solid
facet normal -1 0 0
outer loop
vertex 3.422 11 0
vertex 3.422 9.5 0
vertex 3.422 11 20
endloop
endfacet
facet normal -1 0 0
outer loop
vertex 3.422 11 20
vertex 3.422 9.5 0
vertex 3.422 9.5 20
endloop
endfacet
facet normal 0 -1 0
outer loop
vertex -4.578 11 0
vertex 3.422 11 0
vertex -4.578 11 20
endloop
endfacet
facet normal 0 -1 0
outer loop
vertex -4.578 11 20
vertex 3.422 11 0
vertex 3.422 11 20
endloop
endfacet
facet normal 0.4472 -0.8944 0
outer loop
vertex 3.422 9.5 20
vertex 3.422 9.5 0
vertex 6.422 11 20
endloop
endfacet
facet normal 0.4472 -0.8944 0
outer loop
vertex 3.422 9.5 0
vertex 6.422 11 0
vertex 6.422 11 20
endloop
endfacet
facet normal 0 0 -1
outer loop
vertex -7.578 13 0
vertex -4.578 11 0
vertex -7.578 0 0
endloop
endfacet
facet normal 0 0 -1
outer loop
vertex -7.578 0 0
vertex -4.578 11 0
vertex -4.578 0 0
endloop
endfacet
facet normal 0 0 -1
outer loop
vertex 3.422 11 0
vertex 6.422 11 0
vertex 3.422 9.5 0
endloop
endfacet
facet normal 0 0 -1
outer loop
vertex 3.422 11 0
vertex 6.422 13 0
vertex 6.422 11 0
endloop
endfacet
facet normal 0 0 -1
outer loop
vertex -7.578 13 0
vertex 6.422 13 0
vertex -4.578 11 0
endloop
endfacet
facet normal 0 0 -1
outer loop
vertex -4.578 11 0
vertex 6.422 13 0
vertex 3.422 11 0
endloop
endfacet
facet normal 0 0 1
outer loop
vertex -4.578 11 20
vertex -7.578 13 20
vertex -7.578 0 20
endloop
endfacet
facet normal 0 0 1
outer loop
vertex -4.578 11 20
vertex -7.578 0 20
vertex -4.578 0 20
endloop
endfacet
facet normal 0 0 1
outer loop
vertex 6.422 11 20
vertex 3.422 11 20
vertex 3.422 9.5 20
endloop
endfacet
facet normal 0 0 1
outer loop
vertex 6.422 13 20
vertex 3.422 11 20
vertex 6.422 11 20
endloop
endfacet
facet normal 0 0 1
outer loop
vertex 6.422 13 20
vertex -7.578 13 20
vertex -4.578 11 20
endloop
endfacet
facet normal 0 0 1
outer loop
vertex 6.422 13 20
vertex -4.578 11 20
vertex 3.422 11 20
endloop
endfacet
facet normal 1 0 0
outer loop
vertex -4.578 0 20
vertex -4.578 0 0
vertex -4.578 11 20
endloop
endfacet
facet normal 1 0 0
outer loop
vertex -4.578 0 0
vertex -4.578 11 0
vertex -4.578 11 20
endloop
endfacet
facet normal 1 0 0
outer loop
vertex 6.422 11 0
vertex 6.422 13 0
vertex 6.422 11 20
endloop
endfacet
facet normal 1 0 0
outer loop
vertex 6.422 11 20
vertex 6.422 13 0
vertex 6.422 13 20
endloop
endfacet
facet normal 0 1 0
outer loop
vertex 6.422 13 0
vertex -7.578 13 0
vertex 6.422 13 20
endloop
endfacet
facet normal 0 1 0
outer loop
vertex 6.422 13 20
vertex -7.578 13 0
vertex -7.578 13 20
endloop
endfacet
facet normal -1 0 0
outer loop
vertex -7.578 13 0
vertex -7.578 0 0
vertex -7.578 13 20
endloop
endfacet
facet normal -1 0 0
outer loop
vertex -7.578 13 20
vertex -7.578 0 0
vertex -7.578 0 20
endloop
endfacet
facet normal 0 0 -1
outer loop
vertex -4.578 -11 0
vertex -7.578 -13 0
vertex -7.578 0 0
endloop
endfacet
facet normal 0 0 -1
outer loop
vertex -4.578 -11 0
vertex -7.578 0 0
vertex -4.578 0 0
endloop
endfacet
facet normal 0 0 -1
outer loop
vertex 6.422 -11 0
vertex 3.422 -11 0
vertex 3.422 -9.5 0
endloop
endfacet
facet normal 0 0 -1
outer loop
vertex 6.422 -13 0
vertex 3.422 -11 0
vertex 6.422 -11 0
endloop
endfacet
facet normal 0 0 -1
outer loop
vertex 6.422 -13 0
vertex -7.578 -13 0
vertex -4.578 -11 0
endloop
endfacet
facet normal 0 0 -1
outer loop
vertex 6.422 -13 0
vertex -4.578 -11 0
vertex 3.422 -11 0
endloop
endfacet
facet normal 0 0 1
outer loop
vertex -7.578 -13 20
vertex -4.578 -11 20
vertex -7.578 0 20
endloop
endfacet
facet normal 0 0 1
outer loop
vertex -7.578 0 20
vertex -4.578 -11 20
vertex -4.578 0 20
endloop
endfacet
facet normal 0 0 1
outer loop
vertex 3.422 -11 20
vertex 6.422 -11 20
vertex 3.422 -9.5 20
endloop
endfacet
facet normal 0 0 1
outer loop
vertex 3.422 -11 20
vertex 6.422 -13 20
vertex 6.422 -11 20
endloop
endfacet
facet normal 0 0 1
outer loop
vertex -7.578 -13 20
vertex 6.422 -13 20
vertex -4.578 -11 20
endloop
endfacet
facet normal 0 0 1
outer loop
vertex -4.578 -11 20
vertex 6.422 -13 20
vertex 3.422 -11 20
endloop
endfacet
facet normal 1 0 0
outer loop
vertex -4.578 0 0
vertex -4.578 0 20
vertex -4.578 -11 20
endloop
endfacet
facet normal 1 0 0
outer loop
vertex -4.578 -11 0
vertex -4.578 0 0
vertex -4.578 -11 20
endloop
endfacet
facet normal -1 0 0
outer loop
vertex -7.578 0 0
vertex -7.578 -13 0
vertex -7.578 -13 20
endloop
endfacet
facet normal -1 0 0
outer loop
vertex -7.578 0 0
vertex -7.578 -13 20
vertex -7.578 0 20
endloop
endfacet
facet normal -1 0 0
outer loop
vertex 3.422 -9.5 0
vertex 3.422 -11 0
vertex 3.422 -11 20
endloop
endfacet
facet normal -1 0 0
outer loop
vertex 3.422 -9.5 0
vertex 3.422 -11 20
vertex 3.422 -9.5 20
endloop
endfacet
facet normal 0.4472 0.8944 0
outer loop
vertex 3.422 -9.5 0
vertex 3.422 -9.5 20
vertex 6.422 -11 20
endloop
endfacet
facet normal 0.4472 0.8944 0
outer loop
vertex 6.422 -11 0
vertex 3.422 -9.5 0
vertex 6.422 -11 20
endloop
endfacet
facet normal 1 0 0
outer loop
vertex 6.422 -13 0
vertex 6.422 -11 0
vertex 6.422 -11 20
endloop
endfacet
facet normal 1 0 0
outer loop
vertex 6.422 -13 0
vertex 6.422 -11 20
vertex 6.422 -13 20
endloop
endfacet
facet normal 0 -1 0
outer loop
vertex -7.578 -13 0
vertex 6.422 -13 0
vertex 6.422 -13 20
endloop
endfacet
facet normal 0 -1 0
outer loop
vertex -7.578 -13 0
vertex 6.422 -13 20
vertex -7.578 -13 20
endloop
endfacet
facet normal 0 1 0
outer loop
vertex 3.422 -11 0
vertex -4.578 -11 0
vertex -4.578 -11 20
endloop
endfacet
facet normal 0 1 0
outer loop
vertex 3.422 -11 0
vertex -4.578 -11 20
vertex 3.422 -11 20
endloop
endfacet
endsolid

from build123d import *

# Parameters (mm, degrees)
PAD_DEPTH = 20


with BuildPart() as part:
    # Sketch → Pad (new body)
    with BuildSketch(Plane.XY):
        Polygon((3.421999, 11), (3.421999, 9.5), (6.421999, 11), (6.421999, 13), (-7.578001, 13), (-7.578001, 0), (-4.578001, 0), (-4.578001, 11), align=None)
    pad = extrude(amount=PAD_DEPTH)

    # Mirrored: Pad across Sketch H_Axis
    add(pad.mirror(Plane.ZX))


solid = part.part
